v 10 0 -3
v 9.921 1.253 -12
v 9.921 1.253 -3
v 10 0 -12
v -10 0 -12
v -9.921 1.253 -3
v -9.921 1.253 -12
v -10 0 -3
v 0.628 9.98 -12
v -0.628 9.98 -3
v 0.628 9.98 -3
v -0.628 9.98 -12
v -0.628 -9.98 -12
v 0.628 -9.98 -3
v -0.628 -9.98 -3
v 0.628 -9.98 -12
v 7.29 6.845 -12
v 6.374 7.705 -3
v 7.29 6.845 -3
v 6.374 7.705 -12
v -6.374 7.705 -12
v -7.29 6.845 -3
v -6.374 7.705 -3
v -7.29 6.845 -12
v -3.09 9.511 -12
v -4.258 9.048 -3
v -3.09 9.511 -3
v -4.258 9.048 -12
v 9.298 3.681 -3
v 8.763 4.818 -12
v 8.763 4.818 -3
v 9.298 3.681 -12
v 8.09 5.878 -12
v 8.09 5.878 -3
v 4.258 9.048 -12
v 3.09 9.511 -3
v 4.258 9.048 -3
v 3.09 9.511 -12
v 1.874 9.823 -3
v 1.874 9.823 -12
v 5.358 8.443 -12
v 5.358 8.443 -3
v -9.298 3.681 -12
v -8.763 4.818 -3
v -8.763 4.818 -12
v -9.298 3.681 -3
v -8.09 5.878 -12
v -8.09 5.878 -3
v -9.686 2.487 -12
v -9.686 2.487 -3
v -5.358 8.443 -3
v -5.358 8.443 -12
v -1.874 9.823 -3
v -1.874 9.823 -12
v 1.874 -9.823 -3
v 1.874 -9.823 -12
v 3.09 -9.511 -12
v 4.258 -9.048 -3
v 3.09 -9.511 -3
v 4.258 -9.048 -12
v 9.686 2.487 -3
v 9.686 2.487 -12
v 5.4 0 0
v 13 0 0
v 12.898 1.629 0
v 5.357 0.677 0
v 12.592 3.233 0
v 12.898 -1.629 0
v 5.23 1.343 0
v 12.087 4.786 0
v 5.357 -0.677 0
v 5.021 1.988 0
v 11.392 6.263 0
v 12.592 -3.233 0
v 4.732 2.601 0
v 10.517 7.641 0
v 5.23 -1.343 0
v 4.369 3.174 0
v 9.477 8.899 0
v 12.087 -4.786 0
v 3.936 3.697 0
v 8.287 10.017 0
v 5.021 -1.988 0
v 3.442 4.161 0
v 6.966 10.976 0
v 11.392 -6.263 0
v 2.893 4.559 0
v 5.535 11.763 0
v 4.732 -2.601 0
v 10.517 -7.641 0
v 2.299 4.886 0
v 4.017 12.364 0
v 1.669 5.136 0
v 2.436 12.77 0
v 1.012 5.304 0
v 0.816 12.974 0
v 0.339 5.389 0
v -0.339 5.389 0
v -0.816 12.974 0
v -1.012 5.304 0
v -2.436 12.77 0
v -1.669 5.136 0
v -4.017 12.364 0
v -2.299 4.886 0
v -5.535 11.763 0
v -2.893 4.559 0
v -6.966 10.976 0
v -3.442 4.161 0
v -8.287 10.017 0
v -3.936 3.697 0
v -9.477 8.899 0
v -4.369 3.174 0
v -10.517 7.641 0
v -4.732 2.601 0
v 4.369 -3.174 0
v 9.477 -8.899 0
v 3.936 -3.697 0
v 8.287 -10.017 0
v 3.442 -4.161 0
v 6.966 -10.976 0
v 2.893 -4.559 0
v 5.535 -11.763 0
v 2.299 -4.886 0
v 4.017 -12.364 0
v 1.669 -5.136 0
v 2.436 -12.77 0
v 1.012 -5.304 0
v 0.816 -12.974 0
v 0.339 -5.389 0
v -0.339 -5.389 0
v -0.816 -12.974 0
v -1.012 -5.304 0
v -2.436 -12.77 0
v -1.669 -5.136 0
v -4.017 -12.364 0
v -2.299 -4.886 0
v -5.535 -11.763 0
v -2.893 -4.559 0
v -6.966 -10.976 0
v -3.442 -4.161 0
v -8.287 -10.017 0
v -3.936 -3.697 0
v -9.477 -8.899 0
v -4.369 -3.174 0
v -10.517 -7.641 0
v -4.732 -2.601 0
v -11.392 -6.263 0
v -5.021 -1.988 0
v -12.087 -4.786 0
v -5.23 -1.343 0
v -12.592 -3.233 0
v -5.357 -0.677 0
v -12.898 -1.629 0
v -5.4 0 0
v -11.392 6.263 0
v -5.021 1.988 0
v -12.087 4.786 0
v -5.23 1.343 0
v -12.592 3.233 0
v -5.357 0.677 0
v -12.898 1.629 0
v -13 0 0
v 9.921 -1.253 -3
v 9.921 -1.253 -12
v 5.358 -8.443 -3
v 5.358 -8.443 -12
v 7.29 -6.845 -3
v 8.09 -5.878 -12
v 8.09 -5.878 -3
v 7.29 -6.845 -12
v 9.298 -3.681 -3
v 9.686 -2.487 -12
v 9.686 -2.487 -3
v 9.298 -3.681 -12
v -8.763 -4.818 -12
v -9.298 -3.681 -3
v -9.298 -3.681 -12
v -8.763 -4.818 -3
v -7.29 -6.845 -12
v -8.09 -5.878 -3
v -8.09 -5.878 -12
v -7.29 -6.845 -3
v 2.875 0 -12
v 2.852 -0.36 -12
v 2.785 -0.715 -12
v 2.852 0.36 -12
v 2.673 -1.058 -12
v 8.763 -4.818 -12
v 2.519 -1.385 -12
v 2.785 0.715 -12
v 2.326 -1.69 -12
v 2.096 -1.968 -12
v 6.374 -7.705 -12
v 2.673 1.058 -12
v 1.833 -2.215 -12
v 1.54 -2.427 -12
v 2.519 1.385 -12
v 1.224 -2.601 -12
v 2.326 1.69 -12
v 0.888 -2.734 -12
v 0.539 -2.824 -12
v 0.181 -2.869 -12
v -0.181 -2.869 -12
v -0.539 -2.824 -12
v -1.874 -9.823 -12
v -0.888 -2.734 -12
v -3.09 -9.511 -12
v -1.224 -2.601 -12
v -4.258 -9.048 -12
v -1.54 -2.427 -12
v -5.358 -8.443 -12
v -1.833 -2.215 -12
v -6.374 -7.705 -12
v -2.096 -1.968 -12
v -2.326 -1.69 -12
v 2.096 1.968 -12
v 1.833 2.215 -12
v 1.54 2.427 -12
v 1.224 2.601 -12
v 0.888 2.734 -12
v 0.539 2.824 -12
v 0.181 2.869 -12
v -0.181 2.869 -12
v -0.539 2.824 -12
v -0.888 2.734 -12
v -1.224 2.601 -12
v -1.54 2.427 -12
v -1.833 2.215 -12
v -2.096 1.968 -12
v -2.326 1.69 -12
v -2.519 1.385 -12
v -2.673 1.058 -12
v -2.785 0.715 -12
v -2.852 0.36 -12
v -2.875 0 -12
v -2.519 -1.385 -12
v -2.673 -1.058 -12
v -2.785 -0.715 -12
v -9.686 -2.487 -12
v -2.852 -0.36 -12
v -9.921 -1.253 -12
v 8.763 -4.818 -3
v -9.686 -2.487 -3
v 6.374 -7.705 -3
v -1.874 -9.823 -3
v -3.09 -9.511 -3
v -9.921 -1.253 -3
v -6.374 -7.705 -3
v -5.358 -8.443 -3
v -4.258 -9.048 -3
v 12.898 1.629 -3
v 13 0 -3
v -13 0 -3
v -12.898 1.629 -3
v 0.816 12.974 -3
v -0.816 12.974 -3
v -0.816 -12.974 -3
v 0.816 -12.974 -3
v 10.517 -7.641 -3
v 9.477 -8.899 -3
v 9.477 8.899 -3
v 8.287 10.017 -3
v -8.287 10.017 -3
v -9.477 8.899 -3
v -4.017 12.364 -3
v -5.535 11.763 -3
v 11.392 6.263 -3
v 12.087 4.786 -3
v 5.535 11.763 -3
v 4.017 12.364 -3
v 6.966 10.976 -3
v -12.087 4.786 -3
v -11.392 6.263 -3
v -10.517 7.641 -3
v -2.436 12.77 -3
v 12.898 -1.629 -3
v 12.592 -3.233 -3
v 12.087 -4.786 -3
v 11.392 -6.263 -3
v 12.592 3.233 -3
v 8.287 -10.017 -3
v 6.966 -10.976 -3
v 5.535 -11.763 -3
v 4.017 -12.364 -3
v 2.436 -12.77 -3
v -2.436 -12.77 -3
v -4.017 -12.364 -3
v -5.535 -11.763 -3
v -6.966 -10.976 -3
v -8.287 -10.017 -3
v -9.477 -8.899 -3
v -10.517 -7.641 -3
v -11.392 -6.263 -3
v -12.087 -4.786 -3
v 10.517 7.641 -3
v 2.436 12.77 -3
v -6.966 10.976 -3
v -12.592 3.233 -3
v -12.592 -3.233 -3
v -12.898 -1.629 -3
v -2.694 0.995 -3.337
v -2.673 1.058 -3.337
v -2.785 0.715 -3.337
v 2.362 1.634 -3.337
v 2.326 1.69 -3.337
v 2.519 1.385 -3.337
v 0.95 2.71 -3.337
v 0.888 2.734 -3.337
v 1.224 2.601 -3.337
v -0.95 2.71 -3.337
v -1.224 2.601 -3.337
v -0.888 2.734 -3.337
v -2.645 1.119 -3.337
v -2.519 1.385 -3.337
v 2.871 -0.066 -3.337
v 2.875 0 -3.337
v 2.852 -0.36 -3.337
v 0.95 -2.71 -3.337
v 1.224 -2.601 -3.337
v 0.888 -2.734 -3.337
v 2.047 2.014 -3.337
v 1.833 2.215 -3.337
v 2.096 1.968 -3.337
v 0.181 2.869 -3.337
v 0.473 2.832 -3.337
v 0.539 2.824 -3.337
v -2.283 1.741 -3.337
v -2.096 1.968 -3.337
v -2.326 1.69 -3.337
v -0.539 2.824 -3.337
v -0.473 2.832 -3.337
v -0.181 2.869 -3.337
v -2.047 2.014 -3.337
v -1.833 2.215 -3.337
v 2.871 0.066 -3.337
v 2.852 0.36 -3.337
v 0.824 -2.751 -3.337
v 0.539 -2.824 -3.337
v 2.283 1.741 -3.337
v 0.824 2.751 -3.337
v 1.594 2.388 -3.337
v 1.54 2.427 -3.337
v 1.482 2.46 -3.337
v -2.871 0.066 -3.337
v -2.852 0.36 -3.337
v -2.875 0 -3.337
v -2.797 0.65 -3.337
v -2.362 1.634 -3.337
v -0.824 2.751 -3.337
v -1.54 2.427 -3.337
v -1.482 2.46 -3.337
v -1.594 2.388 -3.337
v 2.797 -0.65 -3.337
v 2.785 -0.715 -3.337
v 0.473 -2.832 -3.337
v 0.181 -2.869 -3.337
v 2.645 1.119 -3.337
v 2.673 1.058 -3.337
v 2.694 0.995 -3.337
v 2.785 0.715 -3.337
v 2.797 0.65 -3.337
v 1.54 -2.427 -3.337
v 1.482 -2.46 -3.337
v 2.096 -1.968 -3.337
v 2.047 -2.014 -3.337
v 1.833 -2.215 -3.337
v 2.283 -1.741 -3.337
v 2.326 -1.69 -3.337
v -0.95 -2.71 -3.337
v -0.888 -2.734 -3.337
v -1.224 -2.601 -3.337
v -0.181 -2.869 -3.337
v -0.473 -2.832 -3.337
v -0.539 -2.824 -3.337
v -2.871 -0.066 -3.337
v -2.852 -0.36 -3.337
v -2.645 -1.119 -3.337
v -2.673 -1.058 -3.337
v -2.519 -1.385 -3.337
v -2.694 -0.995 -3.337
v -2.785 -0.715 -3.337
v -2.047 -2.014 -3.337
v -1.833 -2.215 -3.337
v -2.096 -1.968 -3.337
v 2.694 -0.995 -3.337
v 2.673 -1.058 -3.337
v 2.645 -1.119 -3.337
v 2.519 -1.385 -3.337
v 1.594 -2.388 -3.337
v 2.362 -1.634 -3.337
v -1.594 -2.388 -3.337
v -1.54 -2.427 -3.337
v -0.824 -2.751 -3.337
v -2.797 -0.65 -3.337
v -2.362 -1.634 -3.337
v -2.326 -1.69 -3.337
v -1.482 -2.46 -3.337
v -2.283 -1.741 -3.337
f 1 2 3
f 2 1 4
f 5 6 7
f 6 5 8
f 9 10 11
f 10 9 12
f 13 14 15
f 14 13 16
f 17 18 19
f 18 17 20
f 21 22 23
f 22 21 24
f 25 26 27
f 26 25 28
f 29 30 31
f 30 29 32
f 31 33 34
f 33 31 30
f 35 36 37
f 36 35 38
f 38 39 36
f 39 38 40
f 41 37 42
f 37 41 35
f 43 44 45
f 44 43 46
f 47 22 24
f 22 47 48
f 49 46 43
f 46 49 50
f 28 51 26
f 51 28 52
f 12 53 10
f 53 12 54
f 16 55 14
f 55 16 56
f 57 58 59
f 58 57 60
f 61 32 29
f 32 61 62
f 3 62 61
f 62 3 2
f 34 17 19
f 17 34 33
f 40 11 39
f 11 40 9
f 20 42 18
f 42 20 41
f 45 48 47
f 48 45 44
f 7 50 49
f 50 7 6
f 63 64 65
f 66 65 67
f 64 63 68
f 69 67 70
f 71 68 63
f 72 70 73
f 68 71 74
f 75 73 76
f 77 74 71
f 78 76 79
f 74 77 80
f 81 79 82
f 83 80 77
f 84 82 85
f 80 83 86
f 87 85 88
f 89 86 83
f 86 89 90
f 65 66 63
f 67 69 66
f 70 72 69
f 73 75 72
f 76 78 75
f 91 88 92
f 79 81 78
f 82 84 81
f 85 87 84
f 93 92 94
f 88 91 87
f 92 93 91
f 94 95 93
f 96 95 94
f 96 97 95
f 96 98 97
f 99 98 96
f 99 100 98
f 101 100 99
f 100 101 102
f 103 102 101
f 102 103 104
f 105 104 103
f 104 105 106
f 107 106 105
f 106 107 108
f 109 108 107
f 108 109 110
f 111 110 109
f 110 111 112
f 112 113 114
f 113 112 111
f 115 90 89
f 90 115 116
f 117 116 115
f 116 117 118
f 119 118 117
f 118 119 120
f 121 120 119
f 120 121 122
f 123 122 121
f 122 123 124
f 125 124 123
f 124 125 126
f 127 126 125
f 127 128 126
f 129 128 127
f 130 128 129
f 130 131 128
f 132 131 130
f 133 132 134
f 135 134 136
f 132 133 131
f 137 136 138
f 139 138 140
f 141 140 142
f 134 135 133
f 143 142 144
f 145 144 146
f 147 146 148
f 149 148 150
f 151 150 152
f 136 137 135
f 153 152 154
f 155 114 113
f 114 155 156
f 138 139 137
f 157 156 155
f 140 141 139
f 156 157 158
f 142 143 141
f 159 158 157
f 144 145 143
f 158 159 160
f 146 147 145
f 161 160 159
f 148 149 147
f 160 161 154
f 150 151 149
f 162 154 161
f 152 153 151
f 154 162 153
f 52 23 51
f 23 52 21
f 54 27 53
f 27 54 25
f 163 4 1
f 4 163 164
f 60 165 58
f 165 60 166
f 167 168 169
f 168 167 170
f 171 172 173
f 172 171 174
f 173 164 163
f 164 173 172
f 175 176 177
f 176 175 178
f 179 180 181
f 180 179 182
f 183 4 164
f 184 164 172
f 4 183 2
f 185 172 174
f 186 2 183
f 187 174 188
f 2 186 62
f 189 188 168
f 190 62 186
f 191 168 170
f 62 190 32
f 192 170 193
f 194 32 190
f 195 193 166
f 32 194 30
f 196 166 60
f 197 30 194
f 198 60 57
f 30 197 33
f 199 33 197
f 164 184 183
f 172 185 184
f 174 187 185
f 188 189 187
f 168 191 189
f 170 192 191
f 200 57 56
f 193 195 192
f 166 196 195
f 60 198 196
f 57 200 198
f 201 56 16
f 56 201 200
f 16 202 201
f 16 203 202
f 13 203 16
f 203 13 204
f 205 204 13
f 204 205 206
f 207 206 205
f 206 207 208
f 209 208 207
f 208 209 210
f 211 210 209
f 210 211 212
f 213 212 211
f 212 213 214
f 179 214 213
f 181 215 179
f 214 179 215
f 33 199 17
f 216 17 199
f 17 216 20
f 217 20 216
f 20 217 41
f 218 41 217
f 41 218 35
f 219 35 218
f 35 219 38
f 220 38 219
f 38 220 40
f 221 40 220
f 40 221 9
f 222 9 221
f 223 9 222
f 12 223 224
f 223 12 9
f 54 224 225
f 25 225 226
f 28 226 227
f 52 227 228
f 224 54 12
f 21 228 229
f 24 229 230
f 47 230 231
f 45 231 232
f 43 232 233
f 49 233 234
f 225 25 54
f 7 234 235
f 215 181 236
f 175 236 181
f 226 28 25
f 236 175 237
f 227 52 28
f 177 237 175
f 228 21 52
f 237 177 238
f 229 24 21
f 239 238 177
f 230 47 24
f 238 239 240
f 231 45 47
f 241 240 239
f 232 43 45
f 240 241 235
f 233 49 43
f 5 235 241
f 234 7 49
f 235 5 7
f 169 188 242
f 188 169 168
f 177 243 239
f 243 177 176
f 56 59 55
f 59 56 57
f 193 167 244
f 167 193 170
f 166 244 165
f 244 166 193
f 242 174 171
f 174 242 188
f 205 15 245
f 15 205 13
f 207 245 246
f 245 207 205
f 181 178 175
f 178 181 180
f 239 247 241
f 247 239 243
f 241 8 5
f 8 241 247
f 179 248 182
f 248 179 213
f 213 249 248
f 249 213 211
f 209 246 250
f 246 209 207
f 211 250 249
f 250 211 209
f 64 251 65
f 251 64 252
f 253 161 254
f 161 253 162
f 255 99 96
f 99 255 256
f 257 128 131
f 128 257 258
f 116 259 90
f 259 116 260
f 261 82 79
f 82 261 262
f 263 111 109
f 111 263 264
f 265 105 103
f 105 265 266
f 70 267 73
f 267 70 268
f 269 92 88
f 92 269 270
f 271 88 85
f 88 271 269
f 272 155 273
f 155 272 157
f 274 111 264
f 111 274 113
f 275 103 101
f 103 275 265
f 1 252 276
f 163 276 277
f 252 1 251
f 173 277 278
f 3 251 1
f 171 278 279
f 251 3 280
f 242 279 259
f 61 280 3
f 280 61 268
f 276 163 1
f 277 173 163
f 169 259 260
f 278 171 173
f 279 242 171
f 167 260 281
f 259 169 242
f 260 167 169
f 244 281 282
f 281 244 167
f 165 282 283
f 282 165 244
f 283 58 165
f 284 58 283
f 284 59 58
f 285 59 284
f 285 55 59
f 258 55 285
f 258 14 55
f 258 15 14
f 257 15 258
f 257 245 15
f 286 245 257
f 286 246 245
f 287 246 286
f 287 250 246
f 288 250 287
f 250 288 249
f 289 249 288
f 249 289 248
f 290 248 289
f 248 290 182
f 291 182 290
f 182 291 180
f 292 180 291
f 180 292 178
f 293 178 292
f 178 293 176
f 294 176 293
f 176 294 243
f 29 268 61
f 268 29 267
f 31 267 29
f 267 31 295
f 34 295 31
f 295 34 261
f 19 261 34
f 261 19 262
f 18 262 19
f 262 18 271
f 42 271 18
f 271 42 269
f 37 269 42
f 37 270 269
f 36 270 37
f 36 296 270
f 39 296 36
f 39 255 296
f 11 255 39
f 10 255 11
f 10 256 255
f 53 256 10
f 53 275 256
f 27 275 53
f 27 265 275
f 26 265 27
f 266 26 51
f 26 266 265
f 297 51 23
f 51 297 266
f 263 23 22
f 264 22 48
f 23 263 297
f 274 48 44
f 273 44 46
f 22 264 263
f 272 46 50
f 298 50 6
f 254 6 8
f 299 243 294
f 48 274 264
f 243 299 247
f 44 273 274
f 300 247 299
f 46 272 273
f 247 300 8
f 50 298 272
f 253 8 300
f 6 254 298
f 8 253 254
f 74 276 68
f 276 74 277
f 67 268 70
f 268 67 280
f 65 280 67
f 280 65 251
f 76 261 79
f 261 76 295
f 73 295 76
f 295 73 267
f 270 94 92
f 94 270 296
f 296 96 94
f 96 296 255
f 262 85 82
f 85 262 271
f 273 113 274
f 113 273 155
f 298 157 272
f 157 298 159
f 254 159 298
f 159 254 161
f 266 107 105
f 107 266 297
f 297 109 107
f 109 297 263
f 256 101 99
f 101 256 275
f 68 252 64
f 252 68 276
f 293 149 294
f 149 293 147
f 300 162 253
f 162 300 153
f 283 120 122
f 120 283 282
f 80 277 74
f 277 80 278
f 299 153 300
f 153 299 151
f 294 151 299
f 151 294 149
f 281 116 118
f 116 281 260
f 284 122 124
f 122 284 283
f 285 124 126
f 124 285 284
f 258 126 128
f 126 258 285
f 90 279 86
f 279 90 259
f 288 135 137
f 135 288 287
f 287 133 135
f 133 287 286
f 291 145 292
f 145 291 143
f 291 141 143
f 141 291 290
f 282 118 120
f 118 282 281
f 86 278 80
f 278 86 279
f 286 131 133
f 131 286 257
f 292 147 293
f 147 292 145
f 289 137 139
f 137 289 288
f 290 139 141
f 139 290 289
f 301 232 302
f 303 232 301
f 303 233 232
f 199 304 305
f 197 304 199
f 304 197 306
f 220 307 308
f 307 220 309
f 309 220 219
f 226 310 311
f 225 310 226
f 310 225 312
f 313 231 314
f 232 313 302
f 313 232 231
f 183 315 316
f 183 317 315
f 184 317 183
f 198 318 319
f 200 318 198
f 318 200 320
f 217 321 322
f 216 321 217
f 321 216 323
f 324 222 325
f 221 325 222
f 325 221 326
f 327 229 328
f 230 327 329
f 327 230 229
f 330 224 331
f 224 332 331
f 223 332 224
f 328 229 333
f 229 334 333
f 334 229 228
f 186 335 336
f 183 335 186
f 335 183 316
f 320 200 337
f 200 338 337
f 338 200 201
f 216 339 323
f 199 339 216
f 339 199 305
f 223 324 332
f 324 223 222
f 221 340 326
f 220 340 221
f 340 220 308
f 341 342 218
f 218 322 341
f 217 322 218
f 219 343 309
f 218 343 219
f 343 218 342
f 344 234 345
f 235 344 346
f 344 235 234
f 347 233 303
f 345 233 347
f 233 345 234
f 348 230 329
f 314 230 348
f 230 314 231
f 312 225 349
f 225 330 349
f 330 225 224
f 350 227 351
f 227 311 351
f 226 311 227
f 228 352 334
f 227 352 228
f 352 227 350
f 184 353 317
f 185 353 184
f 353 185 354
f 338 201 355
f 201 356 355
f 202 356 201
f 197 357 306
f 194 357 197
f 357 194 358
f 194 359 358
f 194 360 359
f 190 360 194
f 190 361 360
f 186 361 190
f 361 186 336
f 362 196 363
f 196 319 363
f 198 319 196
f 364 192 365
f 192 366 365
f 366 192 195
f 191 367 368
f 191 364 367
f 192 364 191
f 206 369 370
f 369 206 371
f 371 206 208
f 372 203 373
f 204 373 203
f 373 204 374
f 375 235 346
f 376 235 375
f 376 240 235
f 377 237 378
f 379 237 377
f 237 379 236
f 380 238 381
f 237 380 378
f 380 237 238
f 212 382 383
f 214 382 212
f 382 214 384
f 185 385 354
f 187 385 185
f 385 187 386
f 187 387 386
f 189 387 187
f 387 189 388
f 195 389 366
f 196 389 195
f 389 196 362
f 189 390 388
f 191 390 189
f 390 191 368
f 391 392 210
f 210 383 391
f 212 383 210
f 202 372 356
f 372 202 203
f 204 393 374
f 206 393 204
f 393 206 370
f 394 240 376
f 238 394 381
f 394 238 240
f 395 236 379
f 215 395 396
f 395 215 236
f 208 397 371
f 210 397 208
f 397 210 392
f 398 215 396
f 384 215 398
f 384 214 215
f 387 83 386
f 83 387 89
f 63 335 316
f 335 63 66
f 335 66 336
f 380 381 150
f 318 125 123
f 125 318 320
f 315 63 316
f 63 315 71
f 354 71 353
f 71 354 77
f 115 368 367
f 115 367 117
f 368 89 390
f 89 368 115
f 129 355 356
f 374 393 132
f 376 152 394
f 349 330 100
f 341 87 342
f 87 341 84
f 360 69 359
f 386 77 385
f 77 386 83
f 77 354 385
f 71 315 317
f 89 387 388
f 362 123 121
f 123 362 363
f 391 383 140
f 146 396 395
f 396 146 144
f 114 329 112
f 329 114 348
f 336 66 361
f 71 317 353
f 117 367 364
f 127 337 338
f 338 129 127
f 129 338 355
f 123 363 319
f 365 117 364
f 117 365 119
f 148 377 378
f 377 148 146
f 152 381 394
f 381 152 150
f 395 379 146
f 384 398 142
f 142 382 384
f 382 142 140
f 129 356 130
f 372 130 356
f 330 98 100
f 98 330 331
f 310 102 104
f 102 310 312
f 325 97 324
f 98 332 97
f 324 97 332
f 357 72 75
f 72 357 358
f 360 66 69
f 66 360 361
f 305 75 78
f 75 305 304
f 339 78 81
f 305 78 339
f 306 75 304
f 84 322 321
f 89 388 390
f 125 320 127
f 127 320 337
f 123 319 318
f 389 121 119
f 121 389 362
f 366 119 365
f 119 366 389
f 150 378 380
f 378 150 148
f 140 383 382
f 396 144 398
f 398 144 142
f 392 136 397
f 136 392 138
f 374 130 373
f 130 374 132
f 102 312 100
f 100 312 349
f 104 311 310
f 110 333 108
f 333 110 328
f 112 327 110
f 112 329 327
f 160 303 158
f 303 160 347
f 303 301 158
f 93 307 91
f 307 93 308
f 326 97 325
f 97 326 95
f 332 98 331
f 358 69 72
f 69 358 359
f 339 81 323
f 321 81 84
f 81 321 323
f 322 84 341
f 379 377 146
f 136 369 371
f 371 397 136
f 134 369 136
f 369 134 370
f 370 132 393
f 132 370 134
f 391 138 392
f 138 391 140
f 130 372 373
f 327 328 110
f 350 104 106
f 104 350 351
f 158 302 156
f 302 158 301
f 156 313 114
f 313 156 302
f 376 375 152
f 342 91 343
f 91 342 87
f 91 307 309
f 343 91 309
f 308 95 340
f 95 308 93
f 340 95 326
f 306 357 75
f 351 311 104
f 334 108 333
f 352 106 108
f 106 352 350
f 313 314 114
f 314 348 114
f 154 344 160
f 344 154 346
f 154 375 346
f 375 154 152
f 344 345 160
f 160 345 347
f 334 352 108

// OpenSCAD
$fn = 50;


difference() {
	union() {
		translate(v = [0, 0, -12.0000000000]) {
			cylinder(h = 12, r = 10.0000000000);
		}
		translate(v = [0, 0, -3.0000000000]) {
			cylinder(h = 3, r = 13.0000000000);
		}
	}
	union() {
		translate(v = [0, 0, 0]) {
			rotate(a = [0, 0, 0]) {
				difference() {
					union() {
						#translate(v = [0, 0, -12.0000000000]) {
							cylinder(h = 12, r = 2.6000000000);
						}
						#translate(v = [0, 0, -12.0000000000]) {
							cylinder(h = 12, r = 2.8750000000);
						}
						#translate(v = [0, 0, -3.7000000000]) {
							cylinder(h = 3.7000000000, r = 10.0000000000, r1 = 2.6000000000, r2 = 5.4000000000);
						}
						#translate(v = [0, 0, -12.0000000000]) {
							cylinder(h = 12, r = 2.6000000000);
						}
					}
					union();
				}
			}
		}
	}
}
